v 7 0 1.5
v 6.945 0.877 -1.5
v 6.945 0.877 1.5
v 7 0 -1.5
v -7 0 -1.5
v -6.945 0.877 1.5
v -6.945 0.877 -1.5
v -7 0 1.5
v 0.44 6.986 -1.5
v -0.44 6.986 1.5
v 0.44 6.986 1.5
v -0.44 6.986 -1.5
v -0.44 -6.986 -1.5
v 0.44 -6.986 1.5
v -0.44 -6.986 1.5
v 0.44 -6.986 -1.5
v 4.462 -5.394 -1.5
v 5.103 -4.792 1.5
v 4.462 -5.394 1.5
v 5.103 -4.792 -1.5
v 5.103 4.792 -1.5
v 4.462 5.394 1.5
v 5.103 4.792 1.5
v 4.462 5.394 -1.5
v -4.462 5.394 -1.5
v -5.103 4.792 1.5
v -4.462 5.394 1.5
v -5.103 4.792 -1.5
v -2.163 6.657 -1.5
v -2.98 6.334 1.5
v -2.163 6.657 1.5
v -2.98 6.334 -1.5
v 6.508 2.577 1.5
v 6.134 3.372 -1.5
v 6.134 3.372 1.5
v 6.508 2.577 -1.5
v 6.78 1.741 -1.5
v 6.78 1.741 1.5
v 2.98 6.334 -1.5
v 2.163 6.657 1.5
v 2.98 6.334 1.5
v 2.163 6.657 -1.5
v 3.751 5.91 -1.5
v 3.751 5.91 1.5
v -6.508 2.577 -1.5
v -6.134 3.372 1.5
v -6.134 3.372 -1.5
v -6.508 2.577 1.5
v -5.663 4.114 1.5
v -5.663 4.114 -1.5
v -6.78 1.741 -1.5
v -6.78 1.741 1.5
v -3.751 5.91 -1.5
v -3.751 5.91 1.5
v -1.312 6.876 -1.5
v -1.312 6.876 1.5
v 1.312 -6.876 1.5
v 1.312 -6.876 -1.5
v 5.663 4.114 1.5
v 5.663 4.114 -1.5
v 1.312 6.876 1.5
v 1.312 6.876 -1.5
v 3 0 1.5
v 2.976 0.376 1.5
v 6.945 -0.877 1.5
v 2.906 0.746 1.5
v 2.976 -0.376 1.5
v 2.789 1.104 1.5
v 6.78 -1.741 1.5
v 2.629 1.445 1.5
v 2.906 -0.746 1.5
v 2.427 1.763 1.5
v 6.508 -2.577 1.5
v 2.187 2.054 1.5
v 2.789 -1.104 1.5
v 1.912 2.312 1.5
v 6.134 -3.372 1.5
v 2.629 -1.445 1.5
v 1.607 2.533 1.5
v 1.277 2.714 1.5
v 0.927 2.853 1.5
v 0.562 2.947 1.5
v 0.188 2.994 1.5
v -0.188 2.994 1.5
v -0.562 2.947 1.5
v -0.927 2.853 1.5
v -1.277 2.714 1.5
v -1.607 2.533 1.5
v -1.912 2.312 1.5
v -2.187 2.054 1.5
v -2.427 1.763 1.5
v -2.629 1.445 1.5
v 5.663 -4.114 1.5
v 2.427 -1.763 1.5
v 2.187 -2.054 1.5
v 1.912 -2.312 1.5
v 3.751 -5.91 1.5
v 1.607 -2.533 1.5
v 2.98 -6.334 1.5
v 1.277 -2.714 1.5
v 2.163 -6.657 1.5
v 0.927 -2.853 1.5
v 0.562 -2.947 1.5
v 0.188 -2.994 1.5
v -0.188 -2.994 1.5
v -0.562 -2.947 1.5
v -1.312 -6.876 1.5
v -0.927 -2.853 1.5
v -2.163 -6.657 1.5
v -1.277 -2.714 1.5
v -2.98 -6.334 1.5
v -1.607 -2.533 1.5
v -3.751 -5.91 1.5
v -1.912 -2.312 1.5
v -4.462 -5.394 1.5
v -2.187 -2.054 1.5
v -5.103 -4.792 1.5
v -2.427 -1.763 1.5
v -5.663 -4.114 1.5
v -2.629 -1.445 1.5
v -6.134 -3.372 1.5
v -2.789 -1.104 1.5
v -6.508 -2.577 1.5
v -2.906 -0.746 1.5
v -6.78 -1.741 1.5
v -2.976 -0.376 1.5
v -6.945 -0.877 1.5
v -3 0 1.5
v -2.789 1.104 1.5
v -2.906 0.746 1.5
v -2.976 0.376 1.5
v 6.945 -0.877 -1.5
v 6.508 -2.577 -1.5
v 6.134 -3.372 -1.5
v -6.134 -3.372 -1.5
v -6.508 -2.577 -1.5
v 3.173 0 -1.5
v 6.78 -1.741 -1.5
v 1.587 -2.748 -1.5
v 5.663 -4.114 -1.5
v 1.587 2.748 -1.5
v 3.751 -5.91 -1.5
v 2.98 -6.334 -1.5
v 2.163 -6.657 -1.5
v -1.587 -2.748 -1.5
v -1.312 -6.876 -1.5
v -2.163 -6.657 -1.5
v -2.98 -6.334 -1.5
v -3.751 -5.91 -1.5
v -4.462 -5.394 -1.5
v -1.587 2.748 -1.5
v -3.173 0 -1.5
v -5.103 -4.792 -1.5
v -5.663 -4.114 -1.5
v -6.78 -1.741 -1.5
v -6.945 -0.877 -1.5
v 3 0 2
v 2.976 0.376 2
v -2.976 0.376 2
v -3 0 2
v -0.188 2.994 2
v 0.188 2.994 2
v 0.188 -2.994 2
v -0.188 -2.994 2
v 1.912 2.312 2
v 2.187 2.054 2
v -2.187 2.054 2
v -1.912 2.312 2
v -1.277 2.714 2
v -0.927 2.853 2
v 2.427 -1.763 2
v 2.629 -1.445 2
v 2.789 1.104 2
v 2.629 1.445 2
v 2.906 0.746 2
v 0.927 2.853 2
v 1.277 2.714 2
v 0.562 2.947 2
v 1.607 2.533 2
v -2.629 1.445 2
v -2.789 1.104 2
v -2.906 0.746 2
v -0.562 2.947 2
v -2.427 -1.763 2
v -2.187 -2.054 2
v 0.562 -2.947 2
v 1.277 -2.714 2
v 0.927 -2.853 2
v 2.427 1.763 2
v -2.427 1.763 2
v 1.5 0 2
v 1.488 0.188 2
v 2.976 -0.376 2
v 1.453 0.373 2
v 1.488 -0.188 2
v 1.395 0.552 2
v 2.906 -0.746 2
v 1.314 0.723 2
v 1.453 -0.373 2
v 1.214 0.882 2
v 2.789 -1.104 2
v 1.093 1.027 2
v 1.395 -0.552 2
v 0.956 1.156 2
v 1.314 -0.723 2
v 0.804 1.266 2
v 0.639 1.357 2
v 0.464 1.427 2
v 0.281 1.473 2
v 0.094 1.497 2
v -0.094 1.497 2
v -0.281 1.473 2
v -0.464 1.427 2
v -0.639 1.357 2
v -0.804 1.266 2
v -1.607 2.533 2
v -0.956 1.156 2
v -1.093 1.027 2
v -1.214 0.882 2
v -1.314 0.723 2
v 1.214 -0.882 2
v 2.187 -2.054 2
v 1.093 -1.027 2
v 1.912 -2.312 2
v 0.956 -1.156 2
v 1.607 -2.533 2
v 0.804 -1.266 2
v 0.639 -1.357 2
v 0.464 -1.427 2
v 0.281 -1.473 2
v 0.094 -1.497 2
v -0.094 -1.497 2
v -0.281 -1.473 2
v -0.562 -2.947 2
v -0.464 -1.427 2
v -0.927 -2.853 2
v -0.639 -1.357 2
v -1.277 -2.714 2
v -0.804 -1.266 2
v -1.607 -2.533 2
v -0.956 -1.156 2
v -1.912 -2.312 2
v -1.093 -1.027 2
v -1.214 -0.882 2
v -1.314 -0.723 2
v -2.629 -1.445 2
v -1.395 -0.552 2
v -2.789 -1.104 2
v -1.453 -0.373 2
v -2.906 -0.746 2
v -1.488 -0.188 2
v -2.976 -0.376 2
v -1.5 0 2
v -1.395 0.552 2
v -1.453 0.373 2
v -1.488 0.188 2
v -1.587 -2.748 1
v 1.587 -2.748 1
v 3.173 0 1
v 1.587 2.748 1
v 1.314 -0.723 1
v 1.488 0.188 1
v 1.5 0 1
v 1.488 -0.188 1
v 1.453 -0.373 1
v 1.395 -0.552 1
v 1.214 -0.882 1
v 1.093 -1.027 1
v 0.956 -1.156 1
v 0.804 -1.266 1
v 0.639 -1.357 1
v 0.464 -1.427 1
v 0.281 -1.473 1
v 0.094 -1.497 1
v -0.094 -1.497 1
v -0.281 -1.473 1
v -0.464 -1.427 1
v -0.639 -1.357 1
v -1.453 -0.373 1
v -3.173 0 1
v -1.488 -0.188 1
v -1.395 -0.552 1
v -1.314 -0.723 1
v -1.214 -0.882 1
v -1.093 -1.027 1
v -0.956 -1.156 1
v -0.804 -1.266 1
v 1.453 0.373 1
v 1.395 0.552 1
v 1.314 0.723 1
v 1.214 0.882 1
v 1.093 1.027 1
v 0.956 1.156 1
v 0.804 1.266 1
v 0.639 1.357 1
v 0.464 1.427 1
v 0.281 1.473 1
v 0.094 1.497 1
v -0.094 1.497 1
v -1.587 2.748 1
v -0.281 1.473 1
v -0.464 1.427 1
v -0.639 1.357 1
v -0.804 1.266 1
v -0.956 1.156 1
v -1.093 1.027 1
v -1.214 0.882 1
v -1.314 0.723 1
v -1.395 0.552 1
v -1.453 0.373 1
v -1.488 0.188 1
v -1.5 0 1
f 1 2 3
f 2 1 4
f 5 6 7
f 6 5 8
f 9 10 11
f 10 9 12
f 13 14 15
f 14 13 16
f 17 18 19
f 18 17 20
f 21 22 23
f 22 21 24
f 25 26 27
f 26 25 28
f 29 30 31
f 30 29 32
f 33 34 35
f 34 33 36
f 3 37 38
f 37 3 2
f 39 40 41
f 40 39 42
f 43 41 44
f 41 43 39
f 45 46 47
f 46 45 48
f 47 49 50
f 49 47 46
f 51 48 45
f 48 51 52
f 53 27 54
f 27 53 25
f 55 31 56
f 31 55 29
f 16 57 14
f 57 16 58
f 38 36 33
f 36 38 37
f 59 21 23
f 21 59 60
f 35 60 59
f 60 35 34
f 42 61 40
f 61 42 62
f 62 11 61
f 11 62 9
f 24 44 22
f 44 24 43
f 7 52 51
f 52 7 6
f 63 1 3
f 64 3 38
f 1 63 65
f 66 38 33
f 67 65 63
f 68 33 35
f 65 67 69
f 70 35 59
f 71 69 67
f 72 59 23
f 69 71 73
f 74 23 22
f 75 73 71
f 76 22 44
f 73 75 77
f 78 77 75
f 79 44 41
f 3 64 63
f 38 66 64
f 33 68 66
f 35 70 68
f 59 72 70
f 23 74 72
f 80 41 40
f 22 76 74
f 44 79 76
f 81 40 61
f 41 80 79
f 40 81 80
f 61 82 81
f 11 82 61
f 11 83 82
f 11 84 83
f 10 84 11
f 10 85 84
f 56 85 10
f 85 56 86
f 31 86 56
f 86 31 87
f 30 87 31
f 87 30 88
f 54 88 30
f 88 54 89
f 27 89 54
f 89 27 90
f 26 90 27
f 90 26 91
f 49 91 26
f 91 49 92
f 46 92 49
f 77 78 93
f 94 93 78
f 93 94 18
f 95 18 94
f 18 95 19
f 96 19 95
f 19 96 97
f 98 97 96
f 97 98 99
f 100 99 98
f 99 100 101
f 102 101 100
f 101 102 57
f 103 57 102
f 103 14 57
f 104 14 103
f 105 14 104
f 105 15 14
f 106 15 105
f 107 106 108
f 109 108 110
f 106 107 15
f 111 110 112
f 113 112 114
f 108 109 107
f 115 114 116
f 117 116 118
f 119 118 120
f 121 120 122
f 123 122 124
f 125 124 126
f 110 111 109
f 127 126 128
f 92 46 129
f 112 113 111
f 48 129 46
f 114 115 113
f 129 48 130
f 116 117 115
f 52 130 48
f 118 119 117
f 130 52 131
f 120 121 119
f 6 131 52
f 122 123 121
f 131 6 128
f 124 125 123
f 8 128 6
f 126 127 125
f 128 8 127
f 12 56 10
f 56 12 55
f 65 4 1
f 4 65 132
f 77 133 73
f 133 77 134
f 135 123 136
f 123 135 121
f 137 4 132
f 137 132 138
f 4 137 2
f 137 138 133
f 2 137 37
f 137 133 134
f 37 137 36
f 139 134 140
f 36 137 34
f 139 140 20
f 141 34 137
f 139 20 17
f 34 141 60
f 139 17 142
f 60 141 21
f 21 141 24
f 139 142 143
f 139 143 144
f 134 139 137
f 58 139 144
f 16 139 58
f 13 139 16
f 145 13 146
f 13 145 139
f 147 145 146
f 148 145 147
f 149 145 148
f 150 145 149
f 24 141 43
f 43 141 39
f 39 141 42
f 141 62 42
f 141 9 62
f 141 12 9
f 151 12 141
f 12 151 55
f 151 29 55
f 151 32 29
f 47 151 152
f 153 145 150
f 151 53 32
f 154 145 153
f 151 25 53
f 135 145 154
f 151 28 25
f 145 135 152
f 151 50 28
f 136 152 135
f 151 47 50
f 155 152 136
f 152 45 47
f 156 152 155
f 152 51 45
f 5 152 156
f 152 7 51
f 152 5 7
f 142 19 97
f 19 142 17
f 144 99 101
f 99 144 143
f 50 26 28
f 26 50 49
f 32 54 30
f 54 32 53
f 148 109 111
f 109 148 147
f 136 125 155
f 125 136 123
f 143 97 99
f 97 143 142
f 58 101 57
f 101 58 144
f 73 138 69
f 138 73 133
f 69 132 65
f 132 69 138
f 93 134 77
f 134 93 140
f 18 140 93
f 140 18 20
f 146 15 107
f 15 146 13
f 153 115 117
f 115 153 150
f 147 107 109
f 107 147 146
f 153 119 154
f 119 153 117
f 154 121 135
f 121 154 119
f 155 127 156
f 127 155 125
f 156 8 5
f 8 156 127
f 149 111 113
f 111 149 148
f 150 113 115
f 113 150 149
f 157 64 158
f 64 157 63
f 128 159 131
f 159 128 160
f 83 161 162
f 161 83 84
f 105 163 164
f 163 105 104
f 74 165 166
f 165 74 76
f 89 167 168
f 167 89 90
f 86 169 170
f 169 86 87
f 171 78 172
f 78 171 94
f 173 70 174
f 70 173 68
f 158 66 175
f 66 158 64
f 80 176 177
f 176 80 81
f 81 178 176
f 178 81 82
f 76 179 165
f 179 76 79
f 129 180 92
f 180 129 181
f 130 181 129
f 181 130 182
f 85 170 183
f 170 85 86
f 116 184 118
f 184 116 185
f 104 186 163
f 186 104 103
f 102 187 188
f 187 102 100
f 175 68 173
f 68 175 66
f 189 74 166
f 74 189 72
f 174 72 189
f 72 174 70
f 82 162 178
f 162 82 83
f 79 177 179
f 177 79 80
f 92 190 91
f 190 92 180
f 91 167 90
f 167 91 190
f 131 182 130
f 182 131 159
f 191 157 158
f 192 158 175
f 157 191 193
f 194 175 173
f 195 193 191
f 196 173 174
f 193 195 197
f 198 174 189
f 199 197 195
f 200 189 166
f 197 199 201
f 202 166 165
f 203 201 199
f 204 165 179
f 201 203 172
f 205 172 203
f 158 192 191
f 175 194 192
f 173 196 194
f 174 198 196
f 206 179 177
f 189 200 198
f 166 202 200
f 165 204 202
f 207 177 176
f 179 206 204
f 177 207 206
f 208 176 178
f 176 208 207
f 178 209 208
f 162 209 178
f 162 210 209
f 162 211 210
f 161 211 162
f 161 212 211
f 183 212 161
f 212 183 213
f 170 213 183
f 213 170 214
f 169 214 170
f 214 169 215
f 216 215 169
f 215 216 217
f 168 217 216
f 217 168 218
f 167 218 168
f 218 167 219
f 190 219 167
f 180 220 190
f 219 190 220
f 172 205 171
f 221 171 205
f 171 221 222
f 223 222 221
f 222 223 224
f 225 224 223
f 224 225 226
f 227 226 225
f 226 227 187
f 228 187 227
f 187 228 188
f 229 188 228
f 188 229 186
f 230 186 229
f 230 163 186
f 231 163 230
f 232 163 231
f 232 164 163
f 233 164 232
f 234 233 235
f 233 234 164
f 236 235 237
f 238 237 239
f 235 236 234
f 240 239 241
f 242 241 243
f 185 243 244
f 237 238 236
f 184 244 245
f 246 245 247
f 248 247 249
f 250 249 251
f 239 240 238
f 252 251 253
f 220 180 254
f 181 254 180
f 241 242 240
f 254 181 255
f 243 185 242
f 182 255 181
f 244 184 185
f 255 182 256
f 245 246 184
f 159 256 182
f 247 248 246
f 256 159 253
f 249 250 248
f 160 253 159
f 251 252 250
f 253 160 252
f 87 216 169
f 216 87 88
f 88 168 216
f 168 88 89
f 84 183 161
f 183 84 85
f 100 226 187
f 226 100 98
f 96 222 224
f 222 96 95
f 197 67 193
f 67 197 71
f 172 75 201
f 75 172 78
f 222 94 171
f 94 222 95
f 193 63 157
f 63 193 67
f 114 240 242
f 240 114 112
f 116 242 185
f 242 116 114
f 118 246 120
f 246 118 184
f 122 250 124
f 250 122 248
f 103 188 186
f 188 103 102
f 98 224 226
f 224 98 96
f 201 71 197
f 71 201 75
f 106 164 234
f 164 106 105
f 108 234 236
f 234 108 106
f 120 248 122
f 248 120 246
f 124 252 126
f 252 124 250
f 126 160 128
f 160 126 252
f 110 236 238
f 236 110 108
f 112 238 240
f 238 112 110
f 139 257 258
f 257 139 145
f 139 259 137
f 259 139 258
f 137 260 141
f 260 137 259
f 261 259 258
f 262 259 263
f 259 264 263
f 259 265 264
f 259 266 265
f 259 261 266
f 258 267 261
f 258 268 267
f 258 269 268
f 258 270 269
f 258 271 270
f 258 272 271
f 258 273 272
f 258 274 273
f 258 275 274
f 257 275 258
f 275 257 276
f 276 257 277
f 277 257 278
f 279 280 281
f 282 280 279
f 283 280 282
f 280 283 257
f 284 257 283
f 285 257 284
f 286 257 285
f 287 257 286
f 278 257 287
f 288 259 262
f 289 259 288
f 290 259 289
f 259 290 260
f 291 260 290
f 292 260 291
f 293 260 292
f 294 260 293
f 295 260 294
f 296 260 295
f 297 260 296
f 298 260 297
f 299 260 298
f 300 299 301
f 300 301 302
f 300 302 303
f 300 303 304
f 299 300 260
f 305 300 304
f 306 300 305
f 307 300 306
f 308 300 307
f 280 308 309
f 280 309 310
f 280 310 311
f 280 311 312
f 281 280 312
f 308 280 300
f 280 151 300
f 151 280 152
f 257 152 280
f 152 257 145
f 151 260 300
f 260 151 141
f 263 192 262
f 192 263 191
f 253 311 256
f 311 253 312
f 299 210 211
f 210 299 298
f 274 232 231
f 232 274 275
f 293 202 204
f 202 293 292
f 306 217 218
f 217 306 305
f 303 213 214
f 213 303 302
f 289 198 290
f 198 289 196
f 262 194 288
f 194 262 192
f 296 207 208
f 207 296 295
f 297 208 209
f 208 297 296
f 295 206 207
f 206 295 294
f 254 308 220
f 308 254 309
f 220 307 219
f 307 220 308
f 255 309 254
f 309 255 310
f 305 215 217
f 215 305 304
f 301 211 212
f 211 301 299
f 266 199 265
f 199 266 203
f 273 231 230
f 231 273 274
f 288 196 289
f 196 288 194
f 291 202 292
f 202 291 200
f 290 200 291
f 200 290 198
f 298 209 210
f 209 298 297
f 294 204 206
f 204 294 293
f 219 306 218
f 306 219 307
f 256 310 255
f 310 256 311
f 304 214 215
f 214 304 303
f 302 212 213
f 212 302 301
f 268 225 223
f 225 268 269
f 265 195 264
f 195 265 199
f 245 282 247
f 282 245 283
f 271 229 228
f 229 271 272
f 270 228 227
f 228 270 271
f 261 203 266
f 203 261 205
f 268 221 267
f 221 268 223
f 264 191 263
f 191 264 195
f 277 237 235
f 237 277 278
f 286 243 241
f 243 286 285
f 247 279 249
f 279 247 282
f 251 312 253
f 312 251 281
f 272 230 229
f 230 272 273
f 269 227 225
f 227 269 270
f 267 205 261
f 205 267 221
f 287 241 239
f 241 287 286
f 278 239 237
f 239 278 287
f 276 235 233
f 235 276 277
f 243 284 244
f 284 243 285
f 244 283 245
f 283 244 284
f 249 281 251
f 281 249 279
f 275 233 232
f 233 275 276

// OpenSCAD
$fn = 50;


difference() {
	union() {
		translate(v = [0, 0, -1.5000000000]) {
			cylinder(h = 3, r = 7.0000000000);
		}
		translate(v = [0, 0, -1.5000000000]) {
			cylinder(h = 3.5000000000, r = 3.0000000000);
		}
	}
	union() {
		translate(v = [0, 0, -1.5000000000]) {
			rotate(a = [0, 0, 0]) {
				difference() {
					union() {
						linear_extrude(height = 2.5000000000) {
							polygon(points = [[3.1735000000, 0.0000000000], [1.5867500000, 2.7483316189], [-1.5867500000, 2.7483316189], [-3.1735000000, 0.0000000000], [-1.5867500000, -2.7483316189], [1.5867500000, -2.7483316189]]);
						}
					}
					union();
				}
			}
		}
		translate(v = [0, 0, -50.0000000000]) {
			cylinder(h = 100, r = 1.5000000000);
		}
	}
}
